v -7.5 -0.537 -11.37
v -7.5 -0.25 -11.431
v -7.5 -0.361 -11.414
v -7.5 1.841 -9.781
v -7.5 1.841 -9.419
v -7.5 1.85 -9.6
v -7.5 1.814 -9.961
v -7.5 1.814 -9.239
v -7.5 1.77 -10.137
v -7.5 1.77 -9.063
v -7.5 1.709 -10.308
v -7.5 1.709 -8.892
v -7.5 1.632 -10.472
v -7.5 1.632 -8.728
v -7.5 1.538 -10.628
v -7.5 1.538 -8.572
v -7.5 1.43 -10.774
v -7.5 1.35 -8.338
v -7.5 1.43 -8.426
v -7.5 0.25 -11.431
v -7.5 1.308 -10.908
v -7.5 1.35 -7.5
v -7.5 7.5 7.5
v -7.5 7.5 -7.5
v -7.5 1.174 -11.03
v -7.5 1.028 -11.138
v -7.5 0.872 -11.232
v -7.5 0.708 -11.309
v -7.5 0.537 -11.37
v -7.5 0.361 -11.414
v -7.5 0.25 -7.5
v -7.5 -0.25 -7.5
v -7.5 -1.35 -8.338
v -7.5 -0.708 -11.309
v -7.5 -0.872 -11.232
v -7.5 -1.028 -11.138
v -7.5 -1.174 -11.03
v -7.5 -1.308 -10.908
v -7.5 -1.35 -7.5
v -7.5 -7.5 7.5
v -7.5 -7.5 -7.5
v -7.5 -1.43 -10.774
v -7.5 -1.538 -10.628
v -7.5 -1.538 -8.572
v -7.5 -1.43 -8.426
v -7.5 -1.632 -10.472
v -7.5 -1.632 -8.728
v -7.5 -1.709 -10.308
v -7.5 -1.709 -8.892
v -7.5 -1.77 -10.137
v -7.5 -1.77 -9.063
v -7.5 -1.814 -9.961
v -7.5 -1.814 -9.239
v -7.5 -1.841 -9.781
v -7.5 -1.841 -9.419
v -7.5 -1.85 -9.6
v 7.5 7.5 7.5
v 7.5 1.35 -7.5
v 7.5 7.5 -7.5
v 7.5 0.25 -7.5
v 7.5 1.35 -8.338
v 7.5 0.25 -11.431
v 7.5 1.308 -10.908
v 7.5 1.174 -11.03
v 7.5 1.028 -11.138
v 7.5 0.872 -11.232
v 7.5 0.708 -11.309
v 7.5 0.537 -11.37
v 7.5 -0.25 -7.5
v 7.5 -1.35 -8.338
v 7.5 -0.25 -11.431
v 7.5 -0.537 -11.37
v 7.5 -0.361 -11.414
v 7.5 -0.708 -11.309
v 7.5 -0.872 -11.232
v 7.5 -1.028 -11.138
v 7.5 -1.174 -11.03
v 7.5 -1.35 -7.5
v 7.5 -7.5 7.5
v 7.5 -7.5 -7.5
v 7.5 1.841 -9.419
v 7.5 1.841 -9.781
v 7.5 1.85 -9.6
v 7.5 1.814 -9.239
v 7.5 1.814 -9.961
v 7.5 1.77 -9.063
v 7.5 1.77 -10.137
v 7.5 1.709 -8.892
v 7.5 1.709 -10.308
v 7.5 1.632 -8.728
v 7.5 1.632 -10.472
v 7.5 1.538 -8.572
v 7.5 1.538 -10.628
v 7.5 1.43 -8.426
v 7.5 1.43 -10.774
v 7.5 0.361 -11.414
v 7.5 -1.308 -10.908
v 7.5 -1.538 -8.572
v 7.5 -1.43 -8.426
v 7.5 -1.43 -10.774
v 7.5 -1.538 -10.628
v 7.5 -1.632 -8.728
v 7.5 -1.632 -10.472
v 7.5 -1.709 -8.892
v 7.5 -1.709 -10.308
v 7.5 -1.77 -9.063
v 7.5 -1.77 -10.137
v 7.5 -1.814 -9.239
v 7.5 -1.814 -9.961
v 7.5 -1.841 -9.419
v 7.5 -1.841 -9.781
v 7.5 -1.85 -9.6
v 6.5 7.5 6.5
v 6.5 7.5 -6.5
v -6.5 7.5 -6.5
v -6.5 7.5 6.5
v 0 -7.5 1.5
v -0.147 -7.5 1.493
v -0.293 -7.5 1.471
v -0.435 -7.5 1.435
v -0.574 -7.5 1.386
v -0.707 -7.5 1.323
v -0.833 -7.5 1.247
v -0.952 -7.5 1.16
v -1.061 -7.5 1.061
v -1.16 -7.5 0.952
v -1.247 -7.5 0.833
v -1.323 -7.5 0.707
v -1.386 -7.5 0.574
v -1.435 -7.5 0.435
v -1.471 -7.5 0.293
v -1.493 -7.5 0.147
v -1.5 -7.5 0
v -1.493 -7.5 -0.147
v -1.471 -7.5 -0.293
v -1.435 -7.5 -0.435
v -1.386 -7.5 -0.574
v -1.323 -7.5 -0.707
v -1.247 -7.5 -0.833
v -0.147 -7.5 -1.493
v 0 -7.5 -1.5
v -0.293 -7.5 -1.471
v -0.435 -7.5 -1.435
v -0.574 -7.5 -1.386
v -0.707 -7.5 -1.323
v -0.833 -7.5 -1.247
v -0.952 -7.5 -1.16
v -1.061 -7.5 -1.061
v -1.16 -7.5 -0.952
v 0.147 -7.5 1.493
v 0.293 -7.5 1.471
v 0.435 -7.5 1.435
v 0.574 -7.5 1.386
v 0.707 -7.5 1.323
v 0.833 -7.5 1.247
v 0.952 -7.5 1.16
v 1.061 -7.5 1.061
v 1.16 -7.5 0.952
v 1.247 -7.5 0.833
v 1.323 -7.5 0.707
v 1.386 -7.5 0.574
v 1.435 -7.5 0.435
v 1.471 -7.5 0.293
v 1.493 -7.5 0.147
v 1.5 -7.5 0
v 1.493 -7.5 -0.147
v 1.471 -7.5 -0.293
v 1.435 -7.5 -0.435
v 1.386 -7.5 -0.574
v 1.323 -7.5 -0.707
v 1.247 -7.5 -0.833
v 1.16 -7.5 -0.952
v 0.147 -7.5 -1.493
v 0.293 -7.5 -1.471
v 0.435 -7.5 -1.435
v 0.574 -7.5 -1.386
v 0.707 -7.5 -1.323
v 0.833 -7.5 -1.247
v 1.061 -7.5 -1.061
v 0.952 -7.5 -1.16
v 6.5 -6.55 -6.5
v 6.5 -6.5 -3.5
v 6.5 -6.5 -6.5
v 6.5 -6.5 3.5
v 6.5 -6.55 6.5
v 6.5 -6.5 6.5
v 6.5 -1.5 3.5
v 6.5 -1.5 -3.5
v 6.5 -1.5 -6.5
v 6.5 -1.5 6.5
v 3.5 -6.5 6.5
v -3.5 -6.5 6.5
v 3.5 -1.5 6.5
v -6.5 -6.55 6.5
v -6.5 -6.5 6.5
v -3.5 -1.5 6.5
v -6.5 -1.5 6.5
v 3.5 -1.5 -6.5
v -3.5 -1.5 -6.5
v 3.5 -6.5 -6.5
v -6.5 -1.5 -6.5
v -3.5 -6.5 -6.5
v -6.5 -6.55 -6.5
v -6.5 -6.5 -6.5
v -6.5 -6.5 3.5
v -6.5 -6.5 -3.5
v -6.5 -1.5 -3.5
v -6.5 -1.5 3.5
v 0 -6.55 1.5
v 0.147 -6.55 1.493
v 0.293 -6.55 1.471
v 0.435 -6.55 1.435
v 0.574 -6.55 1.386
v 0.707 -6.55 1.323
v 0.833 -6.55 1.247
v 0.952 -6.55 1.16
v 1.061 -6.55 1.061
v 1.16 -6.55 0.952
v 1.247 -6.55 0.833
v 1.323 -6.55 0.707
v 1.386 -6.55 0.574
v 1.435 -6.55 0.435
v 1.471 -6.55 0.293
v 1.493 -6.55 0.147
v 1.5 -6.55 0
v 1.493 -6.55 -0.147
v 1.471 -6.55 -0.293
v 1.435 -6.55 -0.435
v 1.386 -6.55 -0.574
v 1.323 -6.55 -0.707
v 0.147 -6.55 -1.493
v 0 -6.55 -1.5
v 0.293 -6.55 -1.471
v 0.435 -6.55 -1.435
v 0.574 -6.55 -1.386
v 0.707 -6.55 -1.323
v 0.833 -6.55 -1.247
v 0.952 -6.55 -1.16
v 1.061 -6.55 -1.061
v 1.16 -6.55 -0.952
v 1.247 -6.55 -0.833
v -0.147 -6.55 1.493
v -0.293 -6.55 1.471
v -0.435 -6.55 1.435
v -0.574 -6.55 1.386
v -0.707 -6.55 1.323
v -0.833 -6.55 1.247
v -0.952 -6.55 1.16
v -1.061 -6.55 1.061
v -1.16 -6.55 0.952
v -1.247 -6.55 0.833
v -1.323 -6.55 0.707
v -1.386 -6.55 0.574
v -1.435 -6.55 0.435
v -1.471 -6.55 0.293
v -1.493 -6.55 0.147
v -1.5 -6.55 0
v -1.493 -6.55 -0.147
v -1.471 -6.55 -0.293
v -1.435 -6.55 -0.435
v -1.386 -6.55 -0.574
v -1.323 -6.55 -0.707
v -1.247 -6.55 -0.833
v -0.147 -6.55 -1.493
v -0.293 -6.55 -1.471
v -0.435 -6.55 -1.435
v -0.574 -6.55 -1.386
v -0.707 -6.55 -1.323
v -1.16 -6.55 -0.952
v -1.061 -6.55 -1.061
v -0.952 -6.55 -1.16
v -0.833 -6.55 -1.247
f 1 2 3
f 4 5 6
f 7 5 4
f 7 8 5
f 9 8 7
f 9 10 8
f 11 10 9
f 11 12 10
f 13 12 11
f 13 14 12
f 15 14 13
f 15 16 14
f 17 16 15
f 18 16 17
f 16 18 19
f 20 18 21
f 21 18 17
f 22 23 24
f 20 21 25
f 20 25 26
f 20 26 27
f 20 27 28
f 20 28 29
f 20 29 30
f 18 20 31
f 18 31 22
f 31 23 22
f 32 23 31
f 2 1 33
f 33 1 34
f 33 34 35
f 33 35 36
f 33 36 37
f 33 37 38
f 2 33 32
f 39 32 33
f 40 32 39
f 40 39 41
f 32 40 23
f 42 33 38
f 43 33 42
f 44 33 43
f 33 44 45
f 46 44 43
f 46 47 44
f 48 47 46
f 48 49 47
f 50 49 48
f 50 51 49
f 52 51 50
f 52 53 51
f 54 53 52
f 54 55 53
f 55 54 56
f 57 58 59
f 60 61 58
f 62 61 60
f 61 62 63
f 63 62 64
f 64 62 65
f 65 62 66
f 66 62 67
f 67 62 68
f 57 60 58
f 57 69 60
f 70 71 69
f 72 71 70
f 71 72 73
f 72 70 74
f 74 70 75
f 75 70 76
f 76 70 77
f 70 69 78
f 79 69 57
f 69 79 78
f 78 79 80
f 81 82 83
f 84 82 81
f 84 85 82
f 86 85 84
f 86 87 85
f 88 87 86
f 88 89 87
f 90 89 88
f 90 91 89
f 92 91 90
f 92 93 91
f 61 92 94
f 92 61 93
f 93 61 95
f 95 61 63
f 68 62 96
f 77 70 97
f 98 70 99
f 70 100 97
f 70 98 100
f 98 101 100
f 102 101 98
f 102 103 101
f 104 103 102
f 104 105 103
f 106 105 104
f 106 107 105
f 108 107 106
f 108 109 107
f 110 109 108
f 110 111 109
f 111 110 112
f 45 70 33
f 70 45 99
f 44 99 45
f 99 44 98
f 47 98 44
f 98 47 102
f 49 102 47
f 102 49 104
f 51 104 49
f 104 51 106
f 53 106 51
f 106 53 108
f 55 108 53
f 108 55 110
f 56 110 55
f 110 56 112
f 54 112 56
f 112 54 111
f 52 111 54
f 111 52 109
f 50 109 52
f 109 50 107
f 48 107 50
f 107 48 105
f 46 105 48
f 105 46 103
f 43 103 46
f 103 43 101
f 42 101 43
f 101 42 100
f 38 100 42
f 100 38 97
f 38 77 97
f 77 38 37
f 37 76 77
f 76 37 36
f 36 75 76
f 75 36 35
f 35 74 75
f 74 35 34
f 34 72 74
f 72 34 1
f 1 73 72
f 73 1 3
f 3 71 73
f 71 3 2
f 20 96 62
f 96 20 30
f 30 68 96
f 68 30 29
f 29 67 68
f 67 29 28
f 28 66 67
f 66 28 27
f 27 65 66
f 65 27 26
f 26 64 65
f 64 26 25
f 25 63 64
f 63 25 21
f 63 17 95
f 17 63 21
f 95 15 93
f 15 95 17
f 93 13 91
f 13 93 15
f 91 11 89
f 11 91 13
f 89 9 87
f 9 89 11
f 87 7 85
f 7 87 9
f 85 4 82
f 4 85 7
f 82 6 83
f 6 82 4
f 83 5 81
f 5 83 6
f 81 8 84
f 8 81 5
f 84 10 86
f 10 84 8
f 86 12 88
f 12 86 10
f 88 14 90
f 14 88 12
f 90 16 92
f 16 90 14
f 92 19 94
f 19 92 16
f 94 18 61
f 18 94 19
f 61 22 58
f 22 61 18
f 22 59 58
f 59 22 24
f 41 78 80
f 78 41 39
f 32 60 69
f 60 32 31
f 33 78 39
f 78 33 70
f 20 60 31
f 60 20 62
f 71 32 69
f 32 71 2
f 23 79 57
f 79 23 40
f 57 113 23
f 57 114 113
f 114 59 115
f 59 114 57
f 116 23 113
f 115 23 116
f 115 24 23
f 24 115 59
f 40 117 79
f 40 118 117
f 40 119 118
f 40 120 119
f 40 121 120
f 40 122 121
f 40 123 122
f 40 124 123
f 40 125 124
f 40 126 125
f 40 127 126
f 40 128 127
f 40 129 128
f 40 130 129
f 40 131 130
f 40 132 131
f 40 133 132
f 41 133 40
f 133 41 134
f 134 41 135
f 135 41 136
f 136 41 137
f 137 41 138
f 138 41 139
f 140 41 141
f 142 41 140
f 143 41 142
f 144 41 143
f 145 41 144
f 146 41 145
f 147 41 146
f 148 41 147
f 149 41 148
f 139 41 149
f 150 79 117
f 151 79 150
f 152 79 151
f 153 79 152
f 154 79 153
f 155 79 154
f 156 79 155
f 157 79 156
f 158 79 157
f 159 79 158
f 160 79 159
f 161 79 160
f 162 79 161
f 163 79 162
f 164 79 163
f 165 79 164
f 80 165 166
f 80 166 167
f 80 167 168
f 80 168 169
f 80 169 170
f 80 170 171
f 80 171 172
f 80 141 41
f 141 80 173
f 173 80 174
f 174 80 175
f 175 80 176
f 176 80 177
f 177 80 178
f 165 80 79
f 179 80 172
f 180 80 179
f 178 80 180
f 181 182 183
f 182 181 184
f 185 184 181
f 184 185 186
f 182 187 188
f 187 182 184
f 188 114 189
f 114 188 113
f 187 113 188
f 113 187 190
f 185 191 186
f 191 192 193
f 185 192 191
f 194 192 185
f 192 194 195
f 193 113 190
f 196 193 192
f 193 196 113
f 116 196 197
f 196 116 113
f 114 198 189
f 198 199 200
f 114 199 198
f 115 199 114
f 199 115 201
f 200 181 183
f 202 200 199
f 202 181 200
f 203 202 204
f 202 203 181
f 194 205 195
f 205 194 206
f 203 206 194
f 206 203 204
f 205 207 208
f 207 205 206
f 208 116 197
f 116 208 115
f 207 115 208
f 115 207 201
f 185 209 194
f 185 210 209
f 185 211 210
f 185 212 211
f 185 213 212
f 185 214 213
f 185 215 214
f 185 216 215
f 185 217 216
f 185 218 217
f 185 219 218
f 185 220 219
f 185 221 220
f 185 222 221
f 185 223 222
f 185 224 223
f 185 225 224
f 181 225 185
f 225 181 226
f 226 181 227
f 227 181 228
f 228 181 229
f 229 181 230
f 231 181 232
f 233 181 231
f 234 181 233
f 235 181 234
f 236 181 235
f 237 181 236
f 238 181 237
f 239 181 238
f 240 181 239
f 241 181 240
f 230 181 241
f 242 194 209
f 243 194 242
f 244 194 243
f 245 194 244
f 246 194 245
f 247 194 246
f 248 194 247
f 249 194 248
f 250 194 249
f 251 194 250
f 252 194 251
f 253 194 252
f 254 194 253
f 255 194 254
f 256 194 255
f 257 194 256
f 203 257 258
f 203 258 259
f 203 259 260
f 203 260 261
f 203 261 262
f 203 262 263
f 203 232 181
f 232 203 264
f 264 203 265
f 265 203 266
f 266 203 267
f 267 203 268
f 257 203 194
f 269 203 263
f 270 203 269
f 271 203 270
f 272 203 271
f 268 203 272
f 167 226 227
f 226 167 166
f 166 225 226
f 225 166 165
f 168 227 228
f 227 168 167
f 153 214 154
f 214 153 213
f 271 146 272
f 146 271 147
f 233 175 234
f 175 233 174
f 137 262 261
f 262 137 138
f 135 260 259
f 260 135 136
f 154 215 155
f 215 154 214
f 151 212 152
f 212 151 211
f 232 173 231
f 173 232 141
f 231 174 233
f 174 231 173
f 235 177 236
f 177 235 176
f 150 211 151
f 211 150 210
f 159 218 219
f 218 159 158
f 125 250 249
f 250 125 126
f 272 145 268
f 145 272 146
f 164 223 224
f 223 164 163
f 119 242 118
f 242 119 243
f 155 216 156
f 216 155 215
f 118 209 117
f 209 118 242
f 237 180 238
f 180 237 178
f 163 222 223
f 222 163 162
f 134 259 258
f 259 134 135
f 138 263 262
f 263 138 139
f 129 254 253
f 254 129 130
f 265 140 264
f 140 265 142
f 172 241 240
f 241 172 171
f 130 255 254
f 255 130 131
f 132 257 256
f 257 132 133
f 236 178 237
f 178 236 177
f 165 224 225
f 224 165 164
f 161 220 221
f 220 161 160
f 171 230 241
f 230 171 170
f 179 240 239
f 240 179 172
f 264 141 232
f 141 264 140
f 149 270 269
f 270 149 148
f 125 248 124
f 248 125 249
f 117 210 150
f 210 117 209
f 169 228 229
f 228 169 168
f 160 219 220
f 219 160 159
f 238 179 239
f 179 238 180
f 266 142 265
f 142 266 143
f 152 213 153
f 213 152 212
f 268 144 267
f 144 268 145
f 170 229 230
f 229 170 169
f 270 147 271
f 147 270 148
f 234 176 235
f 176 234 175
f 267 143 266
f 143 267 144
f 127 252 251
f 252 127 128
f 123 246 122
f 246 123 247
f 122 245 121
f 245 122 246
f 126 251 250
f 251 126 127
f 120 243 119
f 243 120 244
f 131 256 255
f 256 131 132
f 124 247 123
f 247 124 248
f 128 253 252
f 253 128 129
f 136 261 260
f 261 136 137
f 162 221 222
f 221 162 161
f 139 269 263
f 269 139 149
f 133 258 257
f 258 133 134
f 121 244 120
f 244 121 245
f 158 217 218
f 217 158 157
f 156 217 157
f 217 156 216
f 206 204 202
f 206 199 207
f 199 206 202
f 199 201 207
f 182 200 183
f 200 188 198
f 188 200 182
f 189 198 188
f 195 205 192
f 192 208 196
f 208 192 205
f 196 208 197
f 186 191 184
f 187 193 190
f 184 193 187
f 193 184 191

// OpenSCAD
// ============================================================
// Fischertechnik Baustein 15 — PCB Housing
// ============================================================
//
// 15×15×15 mm, hollow (1 mm walls), open at Y+ for PCB.
// 3 mm hole centered on back face (Y-).
// 4 triangular supports in inner corners for PCB.
// Split T-tongue on bottom for Baustein 30 connection.
//
// ---- PCB DIMENSIONS ----
//   Recommended PCB:   12.5 × 12.5 mm
//   PCB seats at:      5 mm from back wall
// ============================================================

// ==== PARAMETERS ====

block_length = 15;
block_width  = 15;
block_height = 15;

wall = 1.0;

groove_bore_d   = 4.0;
groove_slit_w   = 3.0;
groove_depth    = 2.1;

tongue_clearance = 0.15;
split_width = 0.5;

back_hole_d = 3.0;

support_h   = 5.0;
support_leg = 3.0;

$fn = 64;

// ==== COMPUTED ====
td = groove_bore_d - 2 * tongue_clearance;
tw = groove_slit_w - 2 * tongue_clearance;
tc = groove_depth;

cavity_x = block_length - 2 * wall;
cavity_z = block_height - 2 * wall;
cavity_y = block_width - wall;

split_depth = tc + td/2 + 0.1;

back_wall_y = -block_width/2 + wall;

cx = cavity_x / 2;
cz = cavity_z / 2;

// ============================================================
module tongue_2d() {
    union() {
        translate([0, tc])
            circle(d = td);
        translate([-tw/2, 0])
            square([tw, tc]);
    }
}

// ============================================================
// Base triangle at bottom-left corner (-X, -Z).
//
// Looking at the back wall (XZ plane):
//
//        -X wall
//         |
//         |\ 
//         | \    ← hypotenuse faces center
//         |__\
//        -Z wall
//
// Legs flush against -X and -Z walls,
// point (hypotenuse) faces toward center.
// ============================================================
module base_corner_support() {
    translate([-cx, back_wall_y, -cz])
        rotate([-90, 90, 0])
            linear_extrude(height = support_h)
                polygon(points = [
                    [0, 0],
                    [-support_leg, 0],
                    [0, -support_leg]
                ]);
}

// ============================================================
module baustein_15_pcb() {
    L = block_length;
    W = block_width;
    H = block_height;

    union() {
        difference() {
            cube([L, W, H], center = true);

            // ---- PCB cavity ----
            translate([0, wall/2, 0])
                cube([cavity_x, cavity_y + 0.1, cavity_z],
                     center = true);

            // ---- 3 mm hole on back face (Y-) ----
            translate([0, -W/2 - 0.05, 0])
                rotate([-90, 0, 0])
                    cylinder(h = wall + 0.1, d = back_hole_d);
        }

        // ---- 4 triangular corner supports ----
        base_corner_support();

        mirror([1, 0, 0])
            base_corner_support();

        mirror([0, 0, 1])
            base_corner_support();

        mirror([1, 0, 0])
            mirror([0, 0, 1])
                base_corner_support();

        // ---- Tongue on bottom ----
        difference() {
            translate([0, 0, -H/2])
                rotate([90, 180, 90])
                translate([0, 0, -L/2])
                    linear_extrude(height = L)
                        tongue_2d();

            translate([0, 0, -H/2 - split_depth/2])
                cube([L + 0.1, split_width, split_depth],
                     center = true);
        }
    }
}

// ============================================================
baustein_15_pcb();
